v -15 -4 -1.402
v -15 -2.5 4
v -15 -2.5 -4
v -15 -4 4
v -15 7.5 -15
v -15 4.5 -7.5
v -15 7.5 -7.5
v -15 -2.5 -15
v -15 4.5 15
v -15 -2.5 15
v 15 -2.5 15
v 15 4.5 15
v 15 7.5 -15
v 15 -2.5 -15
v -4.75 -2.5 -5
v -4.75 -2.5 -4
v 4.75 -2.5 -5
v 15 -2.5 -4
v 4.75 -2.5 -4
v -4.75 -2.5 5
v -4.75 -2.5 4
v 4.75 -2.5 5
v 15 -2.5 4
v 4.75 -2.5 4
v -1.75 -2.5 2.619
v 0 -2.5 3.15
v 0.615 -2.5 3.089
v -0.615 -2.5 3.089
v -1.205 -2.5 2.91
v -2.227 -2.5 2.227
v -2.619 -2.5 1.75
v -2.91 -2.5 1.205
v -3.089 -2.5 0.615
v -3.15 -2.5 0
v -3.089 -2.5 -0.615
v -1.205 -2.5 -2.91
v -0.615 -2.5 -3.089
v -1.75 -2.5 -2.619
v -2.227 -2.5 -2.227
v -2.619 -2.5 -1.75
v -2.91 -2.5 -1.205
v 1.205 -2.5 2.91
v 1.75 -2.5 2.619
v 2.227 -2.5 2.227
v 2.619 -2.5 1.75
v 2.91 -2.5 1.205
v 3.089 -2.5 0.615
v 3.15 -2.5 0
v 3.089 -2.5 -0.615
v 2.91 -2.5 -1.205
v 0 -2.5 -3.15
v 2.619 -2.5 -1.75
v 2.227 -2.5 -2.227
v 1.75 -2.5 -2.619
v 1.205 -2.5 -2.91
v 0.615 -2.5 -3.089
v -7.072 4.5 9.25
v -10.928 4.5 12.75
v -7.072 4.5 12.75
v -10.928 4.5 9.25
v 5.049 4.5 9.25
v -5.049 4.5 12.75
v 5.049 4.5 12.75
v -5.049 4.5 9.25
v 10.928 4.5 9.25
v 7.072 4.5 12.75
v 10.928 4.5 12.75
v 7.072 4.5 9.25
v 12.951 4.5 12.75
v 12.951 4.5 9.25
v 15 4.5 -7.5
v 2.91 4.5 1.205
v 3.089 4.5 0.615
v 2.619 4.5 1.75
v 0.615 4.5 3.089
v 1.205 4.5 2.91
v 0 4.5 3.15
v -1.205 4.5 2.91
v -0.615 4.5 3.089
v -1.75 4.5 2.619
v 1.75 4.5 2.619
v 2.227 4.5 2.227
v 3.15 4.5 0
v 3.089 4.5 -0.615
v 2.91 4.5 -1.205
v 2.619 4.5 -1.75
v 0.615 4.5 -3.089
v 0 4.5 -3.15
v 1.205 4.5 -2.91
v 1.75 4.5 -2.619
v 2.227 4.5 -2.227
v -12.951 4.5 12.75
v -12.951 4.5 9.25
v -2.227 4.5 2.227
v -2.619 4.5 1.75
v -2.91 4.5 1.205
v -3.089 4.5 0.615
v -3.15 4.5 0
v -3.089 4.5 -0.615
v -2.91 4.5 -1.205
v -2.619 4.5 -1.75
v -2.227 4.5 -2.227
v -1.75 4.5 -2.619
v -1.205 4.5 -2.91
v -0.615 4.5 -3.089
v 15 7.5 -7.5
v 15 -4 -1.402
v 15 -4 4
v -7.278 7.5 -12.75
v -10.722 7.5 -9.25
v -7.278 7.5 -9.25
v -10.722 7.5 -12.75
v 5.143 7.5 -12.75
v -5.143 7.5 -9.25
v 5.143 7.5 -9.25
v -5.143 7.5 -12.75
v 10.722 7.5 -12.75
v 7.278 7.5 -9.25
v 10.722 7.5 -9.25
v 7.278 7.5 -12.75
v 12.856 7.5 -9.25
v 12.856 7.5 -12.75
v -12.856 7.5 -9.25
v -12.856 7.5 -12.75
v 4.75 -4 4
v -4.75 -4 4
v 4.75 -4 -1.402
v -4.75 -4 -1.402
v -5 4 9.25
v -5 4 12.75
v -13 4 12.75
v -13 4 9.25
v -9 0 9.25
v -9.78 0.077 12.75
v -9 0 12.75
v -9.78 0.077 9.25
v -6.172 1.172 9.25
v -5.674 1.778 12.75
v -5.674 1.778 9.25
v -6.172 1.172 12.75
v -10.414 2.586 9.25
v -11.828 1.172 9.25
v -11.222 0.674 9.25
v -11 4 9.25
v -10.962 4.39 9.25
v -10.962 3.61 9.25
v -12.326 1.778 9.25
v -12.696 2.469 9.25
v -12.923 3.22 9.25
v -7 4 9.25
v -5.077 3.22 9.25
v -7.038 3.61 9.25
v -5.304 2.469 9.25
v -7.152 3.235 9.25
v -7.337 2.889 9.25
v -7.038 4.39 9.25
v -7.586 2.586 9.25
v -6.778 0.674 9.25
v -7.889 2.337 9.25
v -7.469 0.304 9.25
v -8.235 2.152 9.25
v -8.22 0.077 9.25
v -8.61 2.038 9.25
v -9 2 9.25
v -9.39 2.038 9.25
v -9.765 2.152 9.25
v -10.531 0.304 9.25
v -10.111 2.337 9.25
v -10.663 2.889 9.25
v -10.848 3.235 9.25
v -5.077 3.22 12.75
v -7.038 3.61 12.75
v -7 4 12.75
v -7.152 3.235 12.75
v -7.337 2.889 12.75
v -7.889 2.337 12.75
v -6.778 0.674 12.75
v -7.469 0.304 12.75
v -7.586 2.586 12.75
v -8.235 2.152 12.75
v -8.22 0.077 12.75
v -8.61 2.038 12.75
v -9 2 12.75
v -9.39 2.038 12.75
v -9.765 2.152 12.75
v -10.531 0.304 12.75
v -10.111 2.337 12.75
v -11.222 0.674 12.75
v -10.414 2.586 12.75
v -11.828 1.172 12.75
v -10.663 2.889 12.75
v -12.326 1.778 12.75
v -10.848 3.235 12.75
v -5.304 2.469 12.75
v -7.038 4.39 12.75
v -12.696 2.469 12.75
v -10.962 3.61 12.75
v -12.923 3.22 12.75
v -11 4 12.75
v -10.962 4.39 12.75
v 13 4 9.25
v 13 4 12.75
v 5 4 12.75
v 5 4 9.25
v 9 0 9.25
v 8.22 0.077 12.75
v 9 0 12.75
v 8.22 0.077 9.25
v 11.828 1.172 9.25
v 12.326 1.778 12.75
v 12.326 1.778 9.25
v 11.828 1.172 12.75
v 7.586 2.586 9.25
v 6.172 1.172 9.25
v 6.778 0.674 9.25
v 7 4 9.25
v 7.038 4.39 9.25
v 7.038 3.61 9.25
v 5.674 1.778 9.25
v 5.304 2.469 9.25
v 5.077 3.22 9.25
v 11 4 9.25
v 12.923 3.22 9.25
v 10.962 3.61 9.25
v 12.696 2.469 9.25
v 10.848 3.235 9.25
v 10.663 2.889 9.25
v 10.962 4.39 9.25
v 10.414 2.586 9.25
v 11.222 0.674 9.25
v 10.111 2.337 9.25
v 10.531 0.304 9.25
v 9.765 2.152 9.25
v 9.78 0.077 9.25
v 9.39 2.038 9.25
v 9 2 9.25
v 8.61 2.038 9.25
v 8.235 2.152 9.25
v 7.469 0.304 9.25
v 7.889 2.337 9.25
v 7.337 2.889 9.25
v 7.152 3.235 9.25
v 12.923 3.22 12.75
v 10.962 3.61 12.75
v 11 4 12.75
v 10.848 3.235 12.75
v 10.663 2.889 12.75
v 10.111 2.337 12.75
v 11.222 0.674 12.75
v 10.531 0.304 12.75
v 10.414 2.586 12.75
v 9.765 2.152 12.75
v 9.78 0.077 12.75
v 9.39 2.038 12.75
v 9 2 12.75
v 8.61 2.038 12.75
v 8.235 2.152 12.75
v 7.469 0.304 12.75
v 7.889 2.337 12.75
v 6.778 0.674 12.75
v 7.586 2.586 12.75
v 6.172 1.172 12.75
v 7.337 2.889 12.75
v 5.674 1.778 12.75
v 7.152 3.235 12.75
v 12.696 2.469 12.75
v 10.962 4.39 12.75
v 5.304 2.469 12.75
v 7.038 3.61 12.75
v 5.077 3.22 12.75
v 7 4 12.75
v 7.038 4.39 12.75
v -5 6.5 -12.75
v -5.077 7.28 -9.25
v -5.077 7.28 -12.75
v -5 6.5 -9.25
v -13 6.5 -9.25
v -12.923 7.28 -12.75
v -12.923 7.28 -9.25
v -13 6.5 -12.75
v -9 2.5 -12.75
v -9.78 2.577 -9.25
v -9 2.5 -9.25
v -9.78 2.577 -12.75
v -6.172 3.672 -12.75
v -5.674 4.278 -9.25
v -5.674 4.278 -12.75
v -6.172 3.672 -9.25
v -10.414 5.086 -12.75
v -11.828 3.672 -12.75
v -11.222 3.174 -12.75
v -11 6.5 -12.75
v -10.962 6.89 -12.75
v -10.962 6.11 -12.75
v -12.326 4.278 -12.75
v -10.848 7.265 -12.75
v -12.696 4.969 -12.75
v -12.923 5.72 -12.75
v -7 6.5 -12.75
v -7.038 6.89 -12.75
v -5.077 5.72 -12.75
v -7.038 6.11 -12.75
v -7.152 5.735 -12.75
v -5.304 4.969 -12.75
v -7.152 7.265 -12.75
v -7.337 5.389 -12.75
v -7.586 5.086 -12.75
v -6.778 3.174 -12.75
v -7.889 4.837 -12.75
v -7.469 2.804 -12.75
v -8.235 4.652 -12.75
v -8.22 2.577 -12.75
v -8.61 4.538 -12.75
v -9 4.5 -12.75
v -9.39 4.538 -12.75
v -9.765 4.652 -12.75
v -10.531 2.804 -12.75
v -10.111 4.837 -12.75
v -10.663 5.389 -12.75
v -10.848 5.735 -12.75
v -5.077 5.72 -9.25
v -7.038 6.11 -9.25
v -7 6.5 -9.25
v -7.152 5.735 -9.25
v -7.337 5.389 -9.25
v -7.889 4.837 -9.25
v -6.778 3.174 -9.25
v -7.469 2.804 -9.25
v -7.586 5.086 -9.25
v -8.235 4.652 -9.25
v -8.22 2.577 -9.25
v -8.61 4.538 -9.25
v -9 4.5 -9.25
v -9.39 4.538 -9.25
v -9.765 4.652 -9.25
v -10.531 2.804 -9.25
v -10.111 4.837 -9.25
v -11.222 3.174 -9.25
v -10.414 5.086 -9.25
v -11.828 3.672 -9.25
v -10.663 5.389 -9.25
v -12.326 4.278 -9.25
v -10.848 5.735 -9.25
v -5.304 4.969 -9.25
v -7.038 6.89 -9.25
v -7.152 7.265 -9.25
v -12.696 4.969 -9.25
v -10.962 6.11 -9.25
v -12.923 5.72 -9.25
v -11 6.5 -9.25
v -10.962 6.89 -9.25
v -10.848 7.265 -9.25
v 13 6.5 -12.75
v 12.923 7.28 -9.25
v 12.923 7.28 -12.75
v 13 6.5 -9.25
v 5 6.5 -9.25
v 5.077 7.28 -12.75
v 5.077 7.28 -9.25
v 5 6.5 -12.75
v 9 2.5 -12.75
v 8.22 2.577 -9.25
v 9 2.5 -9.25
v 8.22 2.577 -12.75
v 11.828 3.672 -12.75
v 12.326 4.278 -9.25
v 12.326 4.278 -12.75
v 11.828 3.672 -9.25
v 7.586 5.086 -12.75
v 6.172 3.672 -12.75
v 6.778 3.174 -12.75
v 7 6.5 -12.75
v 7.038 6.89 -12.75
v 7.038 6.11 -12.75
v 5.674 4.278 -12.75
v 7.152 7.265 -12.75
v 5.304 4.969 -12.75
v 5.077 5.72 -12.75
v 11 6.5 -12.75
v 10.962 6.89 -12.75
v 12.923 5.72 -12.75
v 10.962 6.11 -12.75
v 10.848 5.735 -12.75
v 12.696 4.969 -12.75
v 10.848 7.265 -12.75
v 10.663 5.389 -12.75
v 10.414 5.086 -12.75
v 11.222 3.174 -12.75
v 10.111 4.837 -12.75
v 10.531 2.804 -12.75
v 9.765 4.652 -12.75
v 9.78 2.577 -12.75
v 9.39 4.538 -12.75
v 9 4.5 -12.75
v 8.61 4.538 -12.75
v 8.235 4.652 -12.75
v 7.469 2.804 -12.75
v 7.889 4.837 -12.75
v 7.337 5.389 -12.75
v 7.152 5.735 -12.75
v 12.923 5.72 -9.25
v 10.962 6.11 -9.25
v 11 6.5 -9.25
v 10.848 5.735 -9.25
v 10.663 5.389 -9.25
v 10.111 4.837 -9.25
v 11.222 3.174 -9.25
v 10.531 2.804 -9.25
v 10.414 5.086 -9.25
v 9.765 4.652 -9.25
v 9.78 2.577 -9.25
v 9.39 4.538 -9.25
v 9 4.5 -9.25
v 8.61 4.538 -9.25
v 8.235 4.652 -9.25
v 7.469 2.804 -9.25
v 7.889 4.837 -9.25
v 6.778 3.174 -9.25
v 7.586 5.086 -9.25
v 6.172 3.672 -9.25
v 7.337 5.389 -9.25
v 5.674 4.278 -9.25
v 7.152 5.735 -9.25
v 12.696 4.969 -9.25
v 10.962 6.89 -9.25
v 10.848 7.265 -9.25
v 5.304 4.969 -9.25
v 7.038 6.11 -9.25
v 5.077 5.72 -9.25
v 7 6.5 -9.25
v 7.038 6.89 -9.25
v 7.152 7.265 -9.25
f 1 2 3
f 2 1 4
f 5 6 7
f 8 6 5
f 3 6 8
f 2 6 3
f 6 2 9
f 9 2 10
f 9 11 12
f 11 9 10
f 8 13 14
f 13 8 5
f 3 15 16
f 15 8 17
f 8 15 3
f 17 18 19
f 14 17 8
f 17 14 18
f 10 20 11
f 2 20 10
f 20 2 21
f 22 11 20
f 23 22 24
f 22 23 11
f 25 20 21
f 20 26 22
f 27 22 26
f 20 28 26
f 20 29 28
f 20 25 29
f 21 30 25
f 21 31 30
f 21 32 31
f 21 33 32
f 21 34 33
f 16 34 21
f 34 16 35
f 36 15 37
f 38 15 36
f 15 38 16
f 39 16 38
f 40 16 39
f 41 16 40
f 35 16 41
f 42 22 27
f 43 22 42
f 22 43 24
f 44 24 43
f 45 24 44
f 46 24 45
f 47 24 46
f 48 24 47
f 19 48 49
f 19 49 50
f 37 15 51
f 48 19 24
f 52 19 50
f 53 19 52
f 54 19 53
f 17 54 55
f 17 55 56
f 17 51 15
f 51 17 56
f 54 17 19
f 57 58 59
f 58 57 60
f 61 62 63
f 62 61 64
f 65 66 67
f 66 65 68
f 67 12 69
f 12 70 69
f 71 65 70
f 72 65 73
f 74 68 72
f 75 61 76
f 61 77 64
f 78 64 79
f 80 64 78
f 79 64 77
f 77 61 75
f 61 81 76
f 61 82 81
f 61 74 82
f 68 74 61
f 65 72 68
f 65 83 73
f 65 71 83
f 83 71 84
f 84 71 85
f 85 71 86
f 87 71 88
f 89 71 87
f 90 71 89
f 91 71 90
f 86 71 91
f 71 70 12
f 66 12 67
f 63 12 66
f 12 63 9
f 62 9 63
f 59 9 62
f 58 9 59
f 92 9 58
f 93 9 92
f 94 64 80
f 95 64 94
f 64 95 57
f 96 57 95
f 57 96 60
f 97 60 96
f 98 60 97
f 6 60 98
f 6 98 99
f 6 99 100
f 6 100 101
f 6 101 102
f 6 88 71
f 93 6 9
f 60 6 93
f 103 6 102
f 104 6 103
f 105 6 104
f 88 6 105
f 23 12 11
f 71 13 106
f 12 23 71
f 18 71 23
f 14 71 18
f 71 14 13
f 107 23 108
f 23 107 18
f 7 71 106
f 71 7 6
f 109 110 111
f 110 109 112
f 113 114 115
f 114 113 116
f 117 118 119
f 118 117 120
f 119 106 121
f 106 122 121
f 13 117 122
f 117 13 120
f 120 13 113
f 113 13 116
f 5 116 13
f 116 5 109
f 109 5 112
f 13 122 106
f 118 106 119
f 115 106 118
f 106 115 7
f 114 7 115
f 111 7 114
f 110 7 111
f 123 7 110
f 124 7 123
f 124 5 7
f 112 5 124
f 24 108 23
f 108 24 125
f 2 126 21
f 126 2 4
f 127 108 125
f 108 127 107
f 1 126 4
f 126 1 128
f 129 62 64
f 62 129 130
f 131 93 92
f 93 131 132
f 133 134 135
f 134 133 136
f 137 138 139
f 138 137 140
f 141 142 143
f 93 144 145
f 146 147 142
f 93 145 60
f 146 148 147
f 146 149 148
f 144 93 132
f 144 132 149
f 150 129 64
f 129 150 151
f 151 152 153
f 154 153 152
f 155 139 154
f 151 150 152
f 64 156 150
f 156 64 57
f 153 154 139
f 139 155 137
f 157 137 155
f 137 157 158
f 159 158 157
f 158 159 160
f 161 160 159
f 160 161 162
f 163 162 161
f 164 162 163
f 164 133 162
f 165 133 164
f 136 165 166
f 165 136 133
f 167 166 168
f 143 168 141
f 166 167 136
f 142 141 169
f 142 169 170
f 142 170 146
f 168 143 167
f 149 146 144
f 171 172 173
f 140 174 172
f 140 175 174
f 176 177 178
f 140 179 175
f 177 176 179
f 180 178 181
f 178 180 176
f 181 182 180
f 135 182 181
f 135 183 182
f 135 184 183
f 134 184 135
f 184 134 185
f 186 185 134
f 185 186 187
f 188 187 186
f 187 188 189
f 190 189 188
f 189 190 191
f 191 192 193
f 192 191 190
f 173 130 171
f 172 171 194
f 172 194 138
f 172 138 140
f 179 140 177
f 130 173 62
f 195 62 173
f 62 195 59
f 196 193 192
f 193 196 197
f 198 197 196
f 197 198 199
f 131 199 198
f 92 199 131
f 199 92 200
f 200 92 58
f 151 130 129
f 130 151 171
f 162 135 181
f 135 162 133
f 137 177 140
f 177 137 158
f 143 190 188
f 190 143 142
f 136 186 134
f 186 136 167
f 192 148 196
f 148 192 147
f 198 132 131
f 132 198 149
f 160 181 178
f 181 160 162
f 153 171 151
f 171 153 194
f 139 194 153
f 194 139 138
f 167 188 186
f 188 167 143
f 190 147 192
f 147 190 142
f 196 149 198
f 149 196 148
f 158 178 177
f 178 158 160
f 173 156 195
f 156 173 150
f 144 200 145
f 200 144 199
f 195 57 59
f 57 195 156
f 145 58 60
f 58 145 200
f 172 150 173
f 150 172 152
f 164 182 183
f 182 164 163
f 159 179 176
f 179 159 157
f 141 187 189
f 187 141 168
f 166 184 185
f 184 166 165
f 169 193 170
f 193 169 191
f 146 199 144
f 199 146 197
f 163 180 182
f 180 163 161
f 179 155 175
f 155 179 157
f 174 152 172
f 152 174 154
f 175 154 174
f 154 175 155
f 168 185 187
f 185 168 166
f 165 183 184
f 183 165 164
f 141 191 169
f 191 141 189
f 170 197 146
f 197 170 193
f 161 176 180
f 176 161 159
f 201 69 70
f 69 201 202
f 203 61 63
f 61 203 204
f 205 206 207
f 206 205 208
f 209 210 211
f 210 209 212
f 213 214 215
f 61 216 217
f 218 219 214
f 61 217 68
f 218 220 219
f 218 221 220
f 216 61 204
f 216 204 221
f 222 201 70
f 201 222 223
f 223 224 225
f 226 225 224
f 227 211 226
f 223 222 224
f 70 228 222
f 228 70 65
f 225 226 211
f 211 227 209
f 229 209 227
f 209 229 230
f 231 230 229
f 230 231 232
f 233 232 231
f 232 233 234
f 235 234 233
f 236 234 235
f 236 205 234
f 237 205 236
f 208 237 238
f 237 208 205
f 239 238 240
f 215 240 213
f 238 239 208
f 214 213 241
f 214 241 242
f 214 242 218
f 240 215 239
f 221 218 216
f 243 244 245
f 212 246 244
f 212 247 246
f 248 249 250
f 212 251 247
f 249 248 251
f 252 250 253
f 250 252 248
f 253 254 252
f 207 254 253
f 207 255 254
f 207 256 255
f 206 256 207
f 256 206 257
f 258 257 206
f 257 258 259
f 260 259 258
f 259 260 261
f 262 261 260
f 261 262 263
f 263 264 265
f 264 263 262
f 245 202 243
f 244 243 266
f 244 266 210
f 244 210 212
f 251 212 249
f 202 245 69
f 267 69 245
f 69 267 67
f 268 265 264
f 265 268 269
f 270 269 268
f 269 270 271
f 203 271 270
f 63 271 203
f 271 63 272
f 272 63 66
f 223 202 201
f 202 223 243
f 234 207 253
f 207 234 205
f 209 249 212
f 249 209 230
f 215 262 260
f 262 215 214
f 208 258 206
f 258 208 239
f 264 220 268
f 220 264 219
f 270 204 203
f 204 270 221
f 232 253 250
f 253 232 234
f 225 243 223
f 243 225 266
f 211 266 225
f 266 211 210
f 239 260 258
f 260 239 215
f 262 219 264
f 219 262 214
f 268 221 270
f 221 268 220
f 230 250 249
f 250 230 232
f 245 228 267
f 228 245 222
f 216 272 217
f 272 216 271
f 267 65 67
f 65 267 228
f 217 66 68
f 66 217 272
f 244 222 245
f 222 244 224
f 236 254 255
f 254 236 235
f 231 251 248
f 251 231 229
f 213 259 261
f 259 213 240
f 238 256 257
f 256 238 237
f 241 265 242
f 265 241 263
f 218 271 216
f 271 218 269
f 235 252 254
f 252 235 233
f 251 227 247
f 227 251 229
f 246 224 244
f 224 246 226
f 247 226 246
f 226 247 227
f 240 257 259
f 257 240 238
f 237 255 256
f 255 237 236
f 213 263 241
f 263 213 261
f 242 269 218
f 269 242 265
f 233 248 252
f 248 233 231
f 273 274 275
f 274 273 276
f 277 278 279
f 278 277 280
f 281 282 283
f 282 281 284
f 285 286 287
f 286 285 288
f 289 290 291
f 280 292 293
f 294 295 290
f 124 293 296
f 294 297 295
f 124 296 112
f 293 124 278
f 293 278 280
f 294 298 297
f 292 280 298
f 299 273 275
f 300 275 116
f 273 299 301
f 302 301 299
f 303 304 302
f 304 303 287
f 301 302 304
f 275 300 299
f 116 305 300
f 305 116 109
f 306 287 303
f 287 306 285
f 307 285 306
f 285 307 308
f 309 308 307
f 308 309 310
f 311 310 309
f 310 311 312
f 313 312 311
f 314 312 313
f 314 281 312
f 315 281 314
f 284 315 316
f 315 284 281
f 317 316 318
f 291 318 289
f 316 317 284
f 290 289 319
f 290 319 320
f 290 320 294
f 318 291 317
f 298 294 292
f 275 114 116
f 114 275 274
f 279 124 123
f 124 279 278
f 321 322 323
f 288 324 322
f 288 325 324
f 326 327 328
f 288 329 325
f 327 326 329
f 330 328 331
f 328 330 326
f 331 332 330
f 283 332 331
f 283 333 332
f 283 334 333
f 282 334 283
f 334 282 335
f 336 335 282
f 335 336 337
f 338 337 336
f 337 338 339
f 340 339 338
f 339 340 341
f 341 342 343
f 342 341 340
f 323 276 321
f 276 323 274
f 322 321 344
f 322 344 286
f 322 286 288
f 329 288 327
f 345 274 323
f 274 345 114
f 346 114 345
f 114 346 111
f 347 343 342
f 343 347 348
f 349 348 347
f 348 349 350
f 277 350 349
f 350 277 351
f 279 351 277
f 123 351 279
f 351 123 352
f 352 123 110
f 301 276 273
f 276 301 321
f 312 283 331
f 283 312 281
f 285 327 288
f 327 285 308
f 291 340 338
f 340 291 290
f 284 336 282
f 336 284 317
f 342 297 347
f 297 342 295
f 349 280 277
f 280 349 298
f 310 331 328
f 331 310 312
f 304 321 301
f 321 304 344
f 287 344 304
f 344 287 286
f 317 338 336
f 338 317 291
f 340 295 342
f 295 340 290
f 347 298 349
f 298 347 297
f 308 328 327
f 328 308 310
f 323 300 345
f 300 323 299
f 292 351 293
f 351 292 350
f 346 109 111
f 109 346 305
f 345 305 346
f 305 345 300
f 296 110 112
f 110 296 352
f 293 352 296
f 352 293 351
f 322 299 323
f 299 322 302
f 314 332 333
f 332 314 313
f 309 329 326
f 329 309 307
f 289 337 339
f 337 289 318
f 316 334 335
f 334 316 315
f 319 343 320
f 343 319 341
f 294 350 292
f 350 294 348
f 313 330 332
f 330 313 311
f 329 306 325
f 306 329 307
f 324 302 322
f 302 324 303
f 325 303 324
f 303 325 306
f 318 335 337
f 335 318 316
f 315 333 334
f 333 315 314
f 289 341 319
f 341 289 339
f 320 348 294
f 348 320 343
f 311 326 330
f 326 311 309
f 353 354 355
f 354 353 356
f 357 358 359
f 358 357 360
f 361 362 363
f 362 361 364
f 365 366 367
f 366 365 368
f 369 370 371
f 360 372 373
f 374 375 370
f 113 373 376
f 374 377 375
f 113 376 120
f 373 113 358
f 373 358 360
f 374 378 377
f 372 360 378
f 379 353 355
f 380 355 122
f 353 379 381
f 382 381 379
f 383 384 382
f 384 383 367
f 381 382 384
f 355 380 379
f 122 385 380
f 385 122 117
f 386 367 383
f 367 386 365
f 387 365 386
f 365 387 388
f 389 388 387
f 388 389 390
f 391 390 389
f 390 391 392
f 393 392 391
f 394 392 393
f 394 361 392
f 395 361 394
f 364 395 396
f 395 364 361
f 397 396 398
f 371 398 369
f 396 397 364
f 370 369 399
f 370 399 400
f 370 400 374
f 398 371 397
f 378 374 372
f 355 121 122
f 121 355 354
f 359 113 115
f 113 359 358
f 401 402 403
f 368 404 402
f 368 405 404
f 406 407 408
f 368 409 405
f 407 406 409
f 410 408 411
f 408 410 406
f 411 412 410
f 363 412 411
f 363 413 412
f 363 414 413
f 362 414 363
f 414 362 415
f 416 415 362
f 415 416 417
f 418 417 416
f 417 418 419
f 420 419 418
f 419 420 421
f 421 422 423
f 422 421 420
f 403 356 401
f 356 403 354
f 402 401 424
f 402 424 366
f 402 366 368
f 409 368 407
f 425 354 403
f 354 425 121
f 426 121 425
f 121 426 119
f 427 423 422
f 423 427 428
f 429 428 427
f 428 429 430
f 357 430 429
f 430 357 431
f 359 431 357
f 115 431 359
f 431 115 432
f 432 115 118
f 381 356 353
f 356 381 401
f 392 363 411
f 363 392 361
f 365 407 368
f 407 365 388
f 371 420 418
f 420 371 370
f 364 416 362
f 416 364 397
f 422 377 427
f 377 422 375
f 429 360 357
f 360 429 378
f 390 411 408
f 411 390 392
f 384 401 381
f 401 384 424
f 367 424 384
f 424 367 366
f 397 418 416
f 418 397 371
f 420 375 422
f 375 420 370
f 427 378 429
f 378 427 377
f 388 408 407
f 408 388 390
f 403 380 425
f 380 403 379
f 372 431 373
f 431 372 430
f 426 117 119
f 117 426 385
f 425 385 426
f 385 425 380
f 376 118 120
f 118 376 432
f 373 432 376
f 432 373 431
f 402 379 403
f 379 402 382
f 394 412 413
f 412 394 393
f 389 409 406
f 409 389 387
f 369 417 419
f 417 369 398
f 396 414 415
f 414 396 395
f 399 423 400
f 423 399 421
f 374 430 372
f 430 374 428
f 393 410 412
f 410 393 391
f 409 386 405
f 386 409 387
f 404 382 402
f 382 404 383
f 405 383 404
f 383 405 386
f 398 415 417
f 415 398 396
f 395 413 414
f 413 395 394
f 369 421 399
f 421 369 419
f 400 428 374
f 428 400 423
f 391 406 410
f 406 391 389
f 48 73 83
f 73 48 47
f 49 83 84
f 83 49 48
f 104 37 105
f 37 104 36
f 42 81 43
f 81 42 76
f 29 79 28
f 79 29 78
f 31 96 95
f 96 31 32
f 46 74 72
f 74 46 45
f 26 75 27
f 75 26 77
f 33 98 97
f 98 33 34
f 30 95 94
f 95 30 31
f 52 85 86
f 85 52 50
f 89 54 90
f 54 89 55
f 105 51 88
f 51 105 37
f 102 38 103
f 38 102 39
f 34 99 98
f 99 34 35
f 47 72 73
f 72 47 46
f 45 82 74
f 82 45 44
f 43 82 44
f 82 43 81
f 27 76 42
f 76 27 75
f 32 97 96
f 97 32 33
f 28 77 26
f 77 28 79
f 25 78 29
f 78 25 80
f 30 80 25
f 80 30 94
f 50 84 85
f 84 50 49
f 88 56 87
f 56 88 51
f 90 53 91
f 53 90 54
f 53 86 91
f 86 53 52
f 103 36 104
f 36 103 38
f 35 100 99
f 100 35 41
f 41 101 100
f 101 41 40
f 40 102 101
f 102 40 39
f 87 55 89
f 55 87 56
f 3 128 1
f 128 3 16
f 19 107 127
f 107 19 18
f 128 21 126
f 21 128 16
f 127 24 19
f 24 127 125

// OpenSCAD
/* 
   === RebeliX BoX ===

  holder for water cooling hoses / adaptors to fit 3030 grame

*/

//include <../configuration.scad>
include <../inc/functions.scad>

// Radius zakulacenych rohu
corner_rad = 3;

module hoseholder_base()
{
  translate([0, 1, 0]) rounded_box(30,7,profile_width,corner_rad,0,0,0,0);
  translate([0, 3/2+1, profile_width/-2+7.5/2]) cube(size=[30, 7+3, 7.5], center=true);
    
  // Drazka pro pridelani do profilu
  translate([0,-5/2,0]) cube([30,3,8],center=true);


}

module hoseholder_cuts()
{  
  // M6 sroub
  translate([0,0,0]) rotate([90,0,0]) cylinder(d=M6_screw_D, h=20, $fn=32, center=true);
  // Seriznuti pro lehci tisk
  translate([-(30)/2 - 0.01,-5/2,-8/2]) rotate([90 + 30,0,0]) cube([30+1,3,8]);
  // Vyrez pro profilovou matku
  translate([0,-5/2 - 3/2,0])  cube([profile_nut_W,3,10],center=true);
  
  // diry pro pasky pro pridelani adapteru
  translate([-9, 4, 11]) rotate(a=[0, 0, 0]) zip_paska(4);
  translate([9, 4, 11]) rotate(a=[0, 0, 0]) zip_paska(4);
  // pasky pro fixaci hadic smer hotend
  translate([-9, 4+2.5, -11]) rotate(a=[0, 0, 0]) zip_paska(4);
  translate([9, 4+2.5, -11]) rotate(a=[0, 0, 0]) zip_paska(4);

}


module hose_holder()
{
  difference()
  {
    hoseholder_base();
    hoseholder_cuts();
  } 
}


hose_holder();
